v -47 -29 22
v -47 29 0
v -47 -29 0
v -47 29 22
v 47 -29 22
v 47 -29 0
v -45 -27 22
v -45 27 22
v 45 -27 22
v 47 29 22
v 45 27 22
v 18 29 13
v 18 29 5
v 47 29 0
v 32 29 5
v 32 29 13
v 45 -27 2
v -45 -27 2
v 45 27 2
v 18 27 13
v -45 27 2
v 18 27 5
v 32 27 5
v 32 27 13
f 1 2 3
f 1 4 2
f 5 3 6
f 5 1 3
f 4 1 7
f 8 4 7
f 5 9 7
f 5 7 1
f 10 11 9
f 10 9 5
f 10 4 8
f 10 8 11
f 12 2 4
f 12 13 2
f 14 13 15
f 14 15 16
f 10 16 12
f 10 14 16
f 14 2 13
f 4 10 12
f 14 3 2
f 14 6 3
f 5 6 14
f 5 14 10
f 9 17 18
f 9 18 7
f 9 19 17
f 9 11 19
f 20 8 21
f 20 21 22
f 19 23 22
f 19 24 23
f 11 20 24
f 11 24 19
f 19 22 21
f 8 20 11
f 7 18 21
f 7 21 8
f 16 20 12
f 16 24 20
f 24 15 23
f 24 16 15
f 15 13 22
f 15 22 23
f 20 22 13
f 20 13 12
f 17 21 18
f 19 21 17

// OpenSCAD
// Generated by PromptCAD Studio
$fn = 96;

difference() {
  union() {
    difference() {
      translate([-47, -29, 0]) cube([94, 58, 22]);
      translate([-45, -27, 2]) cube([90, 54, 22]);
    }
  }
  union() {
    translate([18, 26.8, 5]) cube([14, 2.4, 8]);
  }
}
